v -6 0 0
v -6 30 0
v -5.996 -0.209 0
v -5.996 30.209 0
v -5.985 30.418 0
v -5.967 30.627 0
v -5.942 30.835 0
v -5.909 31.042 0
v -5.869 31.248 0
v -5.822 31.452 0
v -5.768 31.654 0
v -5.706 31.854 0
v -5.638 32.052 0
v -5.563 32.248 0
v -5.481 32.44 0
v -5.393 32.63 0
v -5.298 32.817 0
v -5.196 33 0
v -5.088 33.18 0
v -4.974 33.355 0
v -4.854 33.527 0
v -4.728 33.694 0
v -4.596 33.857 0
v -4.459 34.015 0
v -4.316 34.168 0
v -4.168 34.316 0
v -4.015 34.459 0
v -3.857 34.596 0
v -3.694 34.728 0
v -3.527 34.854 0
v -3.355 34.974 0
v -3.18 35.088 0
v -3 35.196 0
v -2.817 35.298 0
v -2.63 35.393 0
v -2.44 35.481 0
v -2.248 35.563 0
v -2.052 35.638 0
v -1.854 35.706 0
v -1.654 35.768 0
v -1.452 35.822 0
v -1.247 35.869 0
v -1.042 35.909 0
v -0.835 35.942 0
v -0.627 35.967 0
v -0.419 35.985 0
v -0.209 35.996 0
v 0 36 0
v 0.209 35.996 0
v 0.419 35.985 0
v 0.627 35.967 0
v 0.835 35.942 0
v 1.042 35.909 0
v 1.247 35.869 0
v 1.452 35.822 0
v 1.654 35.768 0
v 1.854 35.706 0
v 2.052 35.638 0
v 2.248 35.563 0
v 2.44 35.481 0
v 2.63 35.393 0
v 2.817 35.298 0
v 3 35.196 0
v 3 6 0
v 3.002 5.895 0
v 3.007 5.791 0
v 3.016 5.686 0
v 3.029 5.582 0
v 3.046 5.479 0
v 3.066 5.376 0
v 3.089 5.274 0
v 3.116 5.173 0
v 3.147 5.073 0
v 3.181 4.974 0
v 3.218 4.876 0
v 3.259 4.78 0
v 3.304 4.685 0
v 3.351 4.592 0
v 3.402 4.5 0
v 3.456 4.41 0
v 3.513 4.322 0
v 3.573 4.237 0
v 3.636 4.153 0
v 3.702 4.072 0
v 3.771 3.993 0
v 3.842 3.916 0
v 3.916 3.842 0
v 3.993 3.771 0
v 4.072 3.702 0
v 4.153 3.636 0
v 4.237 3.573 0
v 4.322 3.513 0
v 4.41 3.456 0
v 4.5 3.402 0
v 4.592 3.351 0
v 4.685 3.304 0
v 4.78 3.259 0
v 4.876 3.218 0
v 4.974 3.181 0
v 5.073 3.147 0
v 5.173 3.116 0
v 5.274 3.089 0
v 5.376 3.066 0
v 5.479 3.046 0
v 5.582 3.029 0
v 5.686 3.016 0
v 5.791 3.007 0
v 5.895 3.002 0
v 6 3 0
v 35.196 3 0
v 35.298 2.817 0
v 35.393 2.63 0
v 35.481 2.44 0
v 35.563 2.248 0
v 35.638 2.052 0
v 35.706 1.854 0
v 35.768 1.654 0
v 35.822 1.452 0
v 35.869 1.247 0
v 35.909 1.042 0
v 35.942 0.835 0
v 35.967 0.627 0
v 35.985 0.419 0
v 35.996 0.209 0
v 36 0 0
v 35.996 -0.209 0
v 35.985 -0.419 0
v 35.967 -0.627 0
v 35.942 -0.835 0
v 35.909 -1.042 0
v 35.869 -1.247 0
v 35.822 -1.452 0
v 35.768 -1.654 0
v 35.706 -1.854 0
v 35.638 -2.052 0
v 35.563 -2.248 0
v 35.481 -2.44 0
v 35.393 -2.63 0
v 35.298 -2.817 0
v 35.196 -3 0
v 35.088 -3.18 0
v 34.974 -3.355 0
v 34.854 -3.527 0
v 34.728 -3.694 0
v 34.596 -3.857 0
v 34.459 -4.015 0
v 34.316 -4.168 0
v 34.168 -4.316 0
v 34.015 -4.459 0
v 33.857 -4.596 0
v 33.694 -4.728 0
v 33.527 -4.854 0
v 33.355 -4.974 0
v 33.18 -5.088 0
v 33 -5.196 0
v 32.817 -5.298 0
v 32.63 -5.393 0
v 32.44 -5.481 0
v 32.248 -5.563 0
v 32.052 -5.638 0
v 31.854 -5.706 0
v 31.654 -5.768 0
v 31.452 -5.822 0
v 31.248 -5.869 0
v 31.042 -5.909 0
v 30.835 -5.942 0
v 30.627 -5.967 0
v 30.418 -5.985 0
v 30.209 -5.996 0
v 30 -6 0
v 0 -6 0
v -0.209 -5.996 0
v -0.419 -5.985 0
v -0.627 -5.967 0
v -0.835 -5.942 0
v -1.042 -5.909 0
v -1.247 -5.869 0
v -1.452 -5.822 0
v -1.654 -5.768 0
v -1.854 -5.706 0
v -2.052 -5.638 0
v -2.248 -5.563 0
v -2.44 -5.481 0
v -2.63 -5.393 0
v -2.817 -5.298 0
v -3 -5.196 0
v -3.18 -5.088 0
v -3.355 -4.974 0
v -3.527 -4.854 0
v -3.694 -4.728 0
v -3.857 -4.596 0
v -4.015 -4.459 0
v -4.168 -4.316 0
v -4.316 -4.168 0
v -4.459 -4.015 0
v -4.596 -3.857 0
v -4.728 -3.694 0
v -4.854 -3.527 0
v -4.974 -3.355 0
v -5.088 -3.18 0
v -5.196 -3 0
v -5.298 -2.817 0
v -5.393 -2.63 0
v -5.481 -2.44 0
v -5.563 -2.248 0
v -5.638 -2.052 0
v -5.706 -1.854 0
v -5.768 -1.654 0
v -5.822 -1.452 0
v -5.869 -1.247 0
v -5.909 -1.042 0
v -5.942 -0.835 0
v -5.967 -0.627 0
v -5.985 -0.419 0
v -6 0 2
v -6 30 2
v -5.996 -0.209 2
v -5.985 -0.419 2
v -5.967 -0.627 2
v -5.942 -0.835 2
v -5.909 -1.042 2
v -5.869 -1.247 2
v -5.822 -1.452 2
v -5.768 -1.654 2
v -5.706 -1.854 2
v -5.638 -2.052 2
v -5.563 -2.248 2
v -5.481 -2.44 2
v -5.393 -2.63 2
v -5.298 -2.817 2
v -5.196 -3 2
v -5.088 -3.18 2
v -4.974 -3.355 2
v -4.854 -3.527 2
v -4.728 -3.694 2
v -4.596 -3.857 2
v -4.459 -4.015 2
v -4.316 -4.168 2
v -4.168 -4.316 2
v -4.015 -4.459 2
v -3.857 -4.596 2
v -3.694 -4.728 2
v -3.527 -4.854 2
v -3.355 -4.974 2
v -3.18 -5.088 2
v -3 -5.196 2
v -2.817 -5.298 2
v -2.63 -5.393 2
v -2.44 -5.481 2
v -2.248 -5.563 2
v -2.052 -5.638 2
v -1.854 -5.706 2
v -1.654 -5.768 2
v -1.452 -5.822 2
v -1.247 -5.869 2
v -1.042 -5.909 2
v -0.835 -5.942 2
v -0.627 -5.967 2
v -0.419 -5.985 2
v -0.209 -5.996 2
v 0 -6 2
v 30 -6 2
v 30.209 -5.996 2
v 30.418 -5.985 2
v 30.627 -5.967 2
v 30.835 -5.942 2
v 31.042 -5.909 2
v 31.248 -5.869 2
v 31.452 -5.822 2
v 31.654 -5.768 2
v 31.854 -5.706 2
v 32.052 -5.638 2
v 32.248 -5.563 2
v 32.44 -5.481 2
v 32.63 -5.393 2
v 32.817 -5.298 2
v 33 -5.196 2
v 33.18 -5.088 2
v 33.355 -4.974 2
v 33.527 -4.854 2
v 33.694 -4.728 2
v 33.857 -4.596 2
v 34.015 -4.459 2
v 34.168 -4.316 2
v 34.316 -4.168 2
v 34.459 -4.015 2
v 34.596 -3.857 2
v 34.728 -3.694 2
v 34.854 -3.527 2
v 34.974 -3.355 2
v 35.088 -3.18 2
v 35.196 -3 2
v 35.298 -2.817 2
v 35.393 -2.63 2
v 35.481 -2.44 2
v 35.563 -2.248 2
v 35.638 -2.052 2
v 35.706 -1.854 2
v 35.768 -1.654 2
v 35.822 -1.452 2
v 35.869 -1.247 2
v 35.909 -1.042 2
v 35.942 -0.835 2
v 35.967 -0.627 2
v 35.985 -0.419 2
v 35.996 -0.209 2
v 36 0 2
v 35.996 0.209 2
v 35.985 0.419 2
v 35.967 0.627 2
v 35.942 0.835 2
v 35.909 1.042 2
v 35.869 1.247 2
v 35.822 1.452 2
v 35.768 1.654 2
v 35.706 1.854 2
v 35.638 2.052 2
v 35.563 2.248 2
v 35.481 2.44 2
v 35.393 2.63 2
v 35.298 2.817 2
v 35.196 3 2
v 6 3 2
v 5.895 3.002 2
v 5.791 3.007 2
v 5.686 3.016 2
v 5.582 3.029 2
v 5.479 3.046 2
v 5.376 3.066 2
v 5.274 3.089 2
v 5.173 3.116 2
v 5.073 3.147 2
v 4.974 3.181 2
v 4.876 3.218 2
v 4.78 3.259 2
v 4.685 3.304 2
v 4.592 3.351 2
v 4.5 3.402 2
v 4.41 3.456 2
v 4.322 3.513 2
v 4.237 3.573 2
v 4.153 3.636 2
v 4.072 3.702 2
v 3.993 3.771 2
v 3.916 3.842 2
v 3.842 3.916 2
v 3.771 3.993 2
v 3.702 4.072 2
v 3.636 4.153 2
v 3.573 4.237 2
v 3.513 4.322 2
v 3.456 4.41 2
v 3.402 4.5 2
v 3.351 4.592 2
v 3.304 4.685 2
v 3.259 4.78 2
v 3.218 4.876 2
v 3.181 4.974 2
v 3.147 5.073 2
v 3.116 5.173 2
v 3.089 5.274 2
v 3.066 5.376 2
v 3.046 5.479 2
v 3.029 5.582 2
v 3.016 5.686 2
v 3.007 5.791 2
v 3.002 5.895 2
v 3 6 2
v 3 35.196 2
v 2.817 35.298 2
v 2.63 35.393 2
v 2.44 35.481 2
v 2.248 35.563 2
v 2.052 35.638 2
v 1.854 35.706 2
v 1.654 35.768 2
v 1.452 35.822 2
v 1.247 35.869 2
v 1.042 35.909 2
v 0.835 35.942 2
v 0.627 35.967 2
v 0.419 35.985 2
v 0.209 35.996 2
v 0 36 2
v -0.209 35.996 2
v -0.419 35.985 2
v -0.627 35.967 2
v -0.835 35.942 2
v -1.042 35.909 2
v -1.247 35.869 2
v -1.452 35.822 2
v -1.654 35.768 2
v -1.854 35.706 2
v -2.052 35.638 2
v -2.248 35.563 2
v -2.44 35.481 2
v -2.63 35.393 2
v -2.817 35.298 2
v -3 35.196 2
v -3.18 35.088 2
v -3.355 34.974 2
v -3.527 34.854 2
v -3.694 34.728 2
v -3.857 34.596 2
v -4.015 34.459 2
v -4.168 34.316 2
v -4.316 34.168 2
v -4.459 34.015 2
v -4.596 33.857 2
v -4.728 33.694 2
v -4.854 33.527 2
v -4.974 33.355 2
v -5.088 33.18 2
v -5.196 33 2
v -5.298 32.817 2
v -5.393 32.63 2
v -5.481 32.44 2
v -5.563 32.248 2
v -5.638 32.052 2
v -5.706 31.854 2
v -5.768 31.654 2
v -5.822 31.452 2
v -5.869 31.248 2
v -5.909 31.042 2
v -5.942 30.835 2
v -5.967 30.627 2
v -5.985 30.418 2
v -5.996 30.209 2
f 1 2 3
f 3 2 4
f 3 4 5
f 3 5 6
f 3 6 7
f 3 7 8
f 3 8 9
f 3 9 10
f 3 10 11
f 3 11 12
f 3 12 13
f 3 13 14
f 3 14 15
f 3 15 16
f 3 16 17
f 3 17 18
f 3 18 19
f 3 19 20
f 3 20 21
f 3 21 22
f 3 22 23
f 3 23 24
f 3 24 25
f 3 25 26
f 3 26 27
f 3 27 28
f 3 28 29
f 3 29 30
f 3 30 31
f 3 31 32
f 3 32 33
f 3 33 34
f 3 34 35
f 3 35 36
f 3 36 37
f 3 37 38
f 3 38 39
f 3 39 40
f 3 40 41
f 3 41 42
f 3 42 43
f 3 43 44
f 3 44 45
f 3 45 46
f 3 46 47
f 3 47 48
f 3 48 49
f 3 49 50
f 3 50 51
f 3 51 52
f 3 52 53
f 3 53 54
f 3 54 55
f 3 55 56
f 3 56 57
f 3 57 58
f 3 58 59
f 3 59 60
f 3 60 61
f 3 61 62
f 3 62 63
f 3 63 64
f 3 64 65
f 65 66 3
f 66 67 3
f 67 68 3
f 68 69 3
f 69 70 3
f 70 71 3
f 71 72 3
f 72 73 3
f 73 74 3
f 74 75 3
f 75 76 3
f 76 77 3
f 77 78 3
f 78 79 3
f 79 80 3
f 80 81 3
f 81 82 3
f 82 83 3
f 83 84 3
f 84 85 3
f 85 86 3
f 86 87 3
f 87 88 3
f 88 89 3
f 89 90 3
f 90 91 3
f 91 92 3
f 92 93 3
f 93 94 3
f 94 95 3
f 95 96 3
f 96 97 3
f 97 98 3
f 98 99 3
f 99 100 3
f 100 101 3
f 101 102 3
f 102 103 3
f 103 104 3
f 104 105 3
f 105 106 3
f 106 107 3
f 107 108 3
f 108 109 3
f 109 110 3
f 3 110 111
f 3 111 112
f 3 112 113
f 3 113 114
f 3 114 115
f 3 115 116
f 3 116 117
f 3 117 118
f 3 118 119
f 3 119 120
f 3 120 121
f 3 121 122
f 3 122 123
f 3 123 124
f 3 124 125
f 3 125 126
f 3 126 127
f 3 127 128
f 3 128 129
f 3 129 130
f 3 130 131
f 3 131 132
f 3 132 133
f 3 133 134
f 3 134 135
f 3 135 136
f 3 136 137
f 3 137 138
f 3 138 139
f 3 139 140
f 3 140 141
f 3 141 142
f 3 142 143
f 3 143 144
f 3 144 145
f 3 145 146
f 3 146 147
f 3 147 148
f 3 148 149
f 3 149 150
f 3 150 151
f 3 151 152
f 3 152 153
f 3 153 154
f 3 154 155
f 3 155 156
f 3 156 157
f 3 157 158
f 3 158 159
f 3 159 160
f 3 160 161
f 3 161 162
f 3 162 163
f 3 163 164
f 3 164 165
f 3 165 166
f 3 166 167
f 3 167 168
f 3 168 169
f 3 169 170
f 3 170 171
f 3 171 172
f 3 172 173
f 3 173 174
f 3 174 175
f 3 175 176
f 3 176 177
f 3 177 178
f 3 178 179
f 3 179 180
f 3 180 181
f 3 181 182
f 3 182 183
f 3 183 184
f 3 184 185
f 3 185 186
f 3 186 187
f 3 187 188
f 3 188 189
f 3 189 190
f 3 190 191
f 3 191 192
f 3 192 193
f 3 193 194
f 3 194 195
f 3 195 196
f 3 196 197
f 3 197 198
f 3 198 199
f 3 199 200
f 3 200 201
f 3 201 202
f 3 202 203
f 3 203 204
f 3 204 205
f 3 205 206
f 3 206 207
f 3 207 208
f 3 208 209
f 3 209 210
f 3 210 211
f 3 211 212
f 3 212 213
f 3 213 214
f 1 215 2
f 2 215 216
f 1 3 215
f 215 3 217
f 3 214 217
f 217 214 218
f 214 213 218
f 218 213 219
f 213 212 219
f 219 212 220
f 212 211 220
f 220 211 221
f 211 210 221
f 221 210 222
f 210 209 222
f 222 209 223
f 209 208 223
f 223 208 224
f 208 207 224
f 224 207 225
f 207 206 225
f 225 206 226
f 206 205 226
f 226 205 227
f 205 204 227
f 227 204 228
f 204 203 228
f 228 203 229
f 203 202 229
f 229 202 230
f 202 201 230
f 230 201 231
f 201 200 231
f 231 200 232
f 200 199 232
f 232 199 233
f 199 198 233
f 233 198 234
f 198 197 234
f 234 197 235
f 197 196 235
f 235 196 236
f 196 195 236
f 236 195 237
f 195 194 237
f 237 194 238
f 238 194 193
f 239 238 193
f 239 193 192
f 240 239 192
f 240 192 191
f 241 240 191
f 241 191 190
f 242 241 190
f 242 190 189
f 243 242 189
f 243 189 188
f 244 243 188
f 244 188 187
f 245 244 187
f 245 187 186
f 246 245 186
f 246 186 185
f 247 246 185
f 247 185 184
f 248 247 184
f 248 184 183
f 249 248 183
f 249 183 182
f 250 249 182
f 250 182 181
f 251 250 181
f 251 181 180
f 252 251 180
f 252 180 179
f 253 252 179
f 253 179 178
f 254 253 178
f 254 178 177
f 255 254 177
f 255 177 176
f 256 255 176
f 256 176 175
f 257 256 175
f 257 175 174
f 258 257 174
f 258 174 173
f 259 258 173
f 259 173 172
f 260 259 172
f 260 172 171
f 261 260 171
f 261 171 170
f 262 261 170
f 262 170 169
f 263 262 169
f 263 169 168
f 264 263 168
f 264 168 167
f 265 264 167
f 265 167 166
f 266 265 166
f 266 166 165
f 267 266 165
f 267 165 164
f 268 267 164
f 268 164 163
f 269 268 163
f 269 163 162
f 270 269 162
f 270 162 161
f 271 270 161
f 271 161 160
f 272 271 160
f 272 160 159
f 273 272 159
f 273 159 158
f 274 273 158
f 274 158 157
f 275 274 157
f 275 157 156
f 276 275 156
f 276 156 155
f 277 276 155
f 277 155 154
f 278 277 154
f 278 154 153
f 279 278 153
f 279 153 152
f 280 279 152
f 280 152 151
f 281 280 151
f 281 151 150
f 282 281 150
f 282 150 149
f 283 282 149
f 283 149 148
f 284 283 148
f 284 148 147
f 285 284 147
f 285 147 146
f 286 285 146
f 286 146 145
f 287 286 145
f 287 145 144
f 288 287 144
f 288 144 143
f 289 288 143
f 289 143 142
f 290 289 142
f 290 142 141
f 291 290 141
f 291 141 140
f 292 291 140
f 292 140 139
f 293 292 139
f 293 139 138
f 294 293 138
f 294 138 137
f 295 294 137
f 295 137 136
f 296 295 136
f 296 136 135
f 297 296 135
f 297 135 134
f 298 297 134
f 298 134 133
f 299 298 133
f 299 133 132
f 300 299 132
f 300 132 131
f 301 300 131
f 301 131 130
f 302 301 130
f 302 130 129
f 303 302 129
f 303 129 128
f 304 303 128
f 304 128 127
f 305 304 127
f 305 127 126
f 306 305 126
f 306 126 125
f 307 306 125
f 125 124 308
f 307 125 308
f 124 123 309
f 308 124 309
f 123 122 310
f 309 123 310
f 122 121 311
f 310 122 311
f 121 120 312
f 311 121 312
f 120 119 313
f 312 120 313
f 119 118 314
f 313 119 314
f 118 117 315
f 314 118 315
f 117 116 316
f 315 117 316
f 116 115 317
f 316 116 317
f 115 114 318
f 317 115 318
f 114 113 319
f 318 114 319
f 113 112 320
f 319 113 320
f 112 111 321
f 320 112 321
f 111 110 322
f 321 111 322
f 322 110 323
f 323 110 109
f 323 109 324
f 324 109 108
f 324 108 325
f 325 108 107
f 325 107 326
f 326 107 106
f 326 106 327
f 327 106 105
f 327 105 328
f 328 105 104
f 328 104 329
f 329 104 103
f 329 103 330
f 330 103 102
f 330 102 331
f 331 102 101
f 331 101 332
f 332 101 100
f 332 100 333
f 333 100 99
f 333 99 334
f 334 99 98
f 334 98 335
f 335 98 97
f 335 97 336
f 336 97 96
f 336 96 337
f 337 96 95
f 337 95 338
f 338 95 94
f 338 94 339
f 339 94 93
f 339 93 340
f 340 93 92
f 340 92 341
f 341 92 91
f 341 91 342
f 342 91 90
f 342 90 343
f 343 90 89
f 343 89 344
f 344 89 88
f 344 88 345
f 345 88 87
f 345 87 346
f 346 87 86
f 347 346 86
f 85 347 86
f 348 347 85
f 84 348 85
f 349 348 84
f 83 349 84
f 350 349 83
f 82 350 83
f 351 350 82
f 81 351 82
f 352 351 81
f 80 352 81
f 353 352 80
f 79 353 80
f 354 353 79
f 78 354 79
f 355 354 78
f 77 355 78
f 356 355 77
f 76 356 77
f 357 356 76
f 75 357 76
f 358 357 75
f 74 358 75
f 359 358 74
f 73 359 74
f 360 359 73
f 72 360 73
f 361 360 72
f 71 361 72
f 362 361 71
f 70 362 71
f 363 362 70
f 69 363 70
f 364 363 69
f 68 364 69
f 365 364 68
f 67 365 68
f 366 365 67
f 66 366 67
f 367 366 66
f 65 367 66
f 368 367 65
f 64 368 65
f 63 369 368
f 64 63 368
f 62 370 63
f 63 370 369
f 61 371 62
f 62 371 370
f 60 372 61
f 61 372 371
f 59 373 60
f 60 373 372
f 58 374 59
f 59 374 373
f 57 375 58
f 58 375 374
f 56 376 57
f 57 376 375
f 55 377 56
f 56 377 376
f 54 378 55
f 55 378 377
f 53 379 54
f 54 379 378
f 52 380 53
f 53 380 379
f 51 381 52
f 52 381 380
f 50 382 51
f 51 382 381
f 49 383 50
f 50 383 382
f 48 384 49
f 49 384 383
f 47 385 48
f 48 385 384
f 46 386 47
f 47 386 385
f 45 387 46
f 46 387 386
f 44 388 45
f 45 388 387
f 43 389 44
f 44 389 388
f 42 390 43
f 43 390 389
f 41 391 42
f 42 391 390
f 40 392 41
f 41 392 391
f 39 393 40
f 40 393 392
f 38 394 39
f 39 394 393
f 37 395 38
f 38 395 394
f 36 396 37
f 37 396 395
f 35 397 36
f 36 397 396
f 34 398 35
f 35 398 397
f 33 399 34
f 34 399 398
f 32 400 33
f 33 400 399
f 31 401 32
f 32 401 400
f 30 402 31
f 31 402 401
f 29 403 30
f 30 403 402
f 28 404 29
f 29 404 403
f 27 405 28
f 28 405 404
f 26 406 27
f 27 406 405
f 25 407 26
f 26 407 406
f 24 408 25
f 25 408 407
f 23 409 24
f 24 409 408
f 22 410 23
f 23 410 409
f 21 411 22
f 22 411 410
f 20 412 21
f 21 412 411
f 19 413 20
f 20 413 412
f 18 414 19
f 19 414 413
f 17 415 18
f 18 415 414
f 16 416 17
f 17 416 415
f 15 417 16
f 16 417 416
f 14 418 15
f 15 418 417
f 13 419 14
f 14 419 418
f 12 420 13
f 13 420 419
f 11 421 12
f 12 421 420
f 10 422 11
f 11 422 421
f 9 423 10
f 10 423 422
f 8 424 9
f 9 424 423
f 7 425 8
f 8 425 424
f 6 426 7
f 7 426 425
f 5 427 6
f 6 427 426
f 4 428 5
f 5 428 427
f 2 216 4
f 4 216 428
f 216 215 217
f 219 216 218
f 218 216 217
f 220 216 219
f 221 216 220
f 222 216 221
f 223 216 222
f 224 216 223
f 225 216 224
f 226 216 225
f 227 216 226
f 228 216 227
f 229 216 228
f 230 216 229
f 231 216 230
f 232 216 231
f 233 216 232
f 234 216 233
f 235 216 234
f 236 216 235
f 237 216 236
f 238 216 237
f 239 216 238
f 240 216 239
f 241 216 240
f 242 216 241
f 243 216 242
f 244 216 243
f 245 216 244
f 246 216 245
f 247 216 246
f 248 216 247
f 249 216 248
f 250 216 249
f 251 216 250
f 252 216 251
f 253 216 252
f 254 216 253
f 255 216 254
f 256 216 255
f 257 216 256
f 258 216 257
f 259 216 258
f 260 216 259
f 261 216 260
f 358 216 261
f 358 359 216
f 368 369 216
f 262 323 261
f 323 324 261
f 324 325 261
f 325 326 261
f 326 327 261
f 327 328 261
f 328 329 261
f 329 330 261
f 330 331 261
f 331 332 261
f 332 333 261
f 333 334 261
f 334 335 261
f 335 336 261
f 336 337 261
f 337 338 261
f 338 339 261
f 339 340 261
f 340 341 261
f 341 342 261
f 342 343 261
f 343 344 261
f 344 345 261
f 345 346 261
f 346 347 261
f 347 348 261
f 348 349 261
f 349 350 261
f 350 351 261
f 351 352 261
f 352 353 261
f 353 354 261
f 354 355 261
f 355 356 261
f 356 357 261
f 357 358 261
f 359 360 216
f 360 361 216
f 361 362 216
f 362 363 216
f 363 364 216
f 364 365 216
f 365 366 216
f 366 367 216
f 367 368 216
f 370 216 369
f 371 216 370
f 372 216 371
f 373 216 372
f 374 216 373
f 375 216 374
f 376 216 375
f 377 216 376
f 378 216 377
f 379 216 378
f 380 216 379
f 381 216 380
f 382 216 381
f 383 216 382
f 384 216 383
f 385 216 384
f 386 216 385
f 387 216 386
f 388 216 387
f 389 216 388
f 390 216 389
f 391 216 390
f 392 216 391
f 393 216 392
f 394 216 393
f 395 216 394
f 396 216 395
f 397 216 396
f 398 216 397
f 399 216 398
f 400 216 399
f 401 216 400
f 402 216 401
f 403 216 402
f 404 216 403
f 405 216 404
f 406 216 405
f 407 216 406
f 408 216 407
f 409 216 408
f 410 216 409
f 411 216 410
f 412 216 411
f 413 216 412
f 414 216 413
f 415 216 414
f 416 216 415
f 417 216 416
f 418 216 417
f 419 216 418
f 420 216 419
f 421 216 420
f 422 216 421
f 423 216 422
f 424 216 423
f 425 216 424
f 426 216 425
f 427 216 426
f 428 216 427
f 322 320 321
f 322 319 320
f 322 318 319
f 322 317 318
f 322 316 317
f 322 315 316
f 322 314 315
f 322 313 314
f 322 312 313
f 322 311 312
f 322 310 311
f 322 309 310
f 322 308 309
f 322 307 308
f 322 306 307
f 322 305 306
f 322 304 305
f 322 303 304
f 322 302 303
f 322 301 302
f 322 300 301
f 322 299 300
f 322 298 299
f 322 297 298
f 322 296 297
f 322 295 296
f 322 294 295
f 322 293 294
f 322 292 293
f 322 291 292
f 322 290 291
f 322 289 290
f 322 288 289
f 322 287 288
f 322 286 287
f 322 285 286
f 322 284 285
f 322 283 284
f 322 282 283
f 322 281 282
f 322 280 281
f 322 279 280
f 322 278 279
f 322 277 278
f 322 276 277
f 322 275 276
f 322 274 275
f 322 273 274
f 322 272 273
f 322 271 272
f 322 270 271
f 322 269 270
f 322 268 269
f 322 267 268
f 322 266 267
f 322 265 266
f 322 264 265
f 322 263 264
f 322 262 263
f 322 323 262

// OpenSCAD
// Use these blocks to lay around corners of large pieces to help prevent curling

$fn=180;

arm_length = 30;
corner_radius = 6;
thickness = 2;

difference() {
    hull() {
        cylinder(r=corner_radius, h=thickness);
        
        translate([0, arm_length, 0])
        cylinder(r=corner_radius, h=thickness);
        
        translate([arm_length, 0, 0])
        cylinder(r=corner_radius, h=thickness);
    }
    
    translate([corner_radius, corner_radius, 0]) {
        hull() {
            cylinder(r=corner_radius/2, h=thickness);
            
            translate([0, arm_length, 0])
            cylinder(r=corner_radius/2, h=thickness);
            
            translate([arm_length, 0, 0])
            cylinder(r=corner_radius/2, h=thickness);
        }
    }
}
